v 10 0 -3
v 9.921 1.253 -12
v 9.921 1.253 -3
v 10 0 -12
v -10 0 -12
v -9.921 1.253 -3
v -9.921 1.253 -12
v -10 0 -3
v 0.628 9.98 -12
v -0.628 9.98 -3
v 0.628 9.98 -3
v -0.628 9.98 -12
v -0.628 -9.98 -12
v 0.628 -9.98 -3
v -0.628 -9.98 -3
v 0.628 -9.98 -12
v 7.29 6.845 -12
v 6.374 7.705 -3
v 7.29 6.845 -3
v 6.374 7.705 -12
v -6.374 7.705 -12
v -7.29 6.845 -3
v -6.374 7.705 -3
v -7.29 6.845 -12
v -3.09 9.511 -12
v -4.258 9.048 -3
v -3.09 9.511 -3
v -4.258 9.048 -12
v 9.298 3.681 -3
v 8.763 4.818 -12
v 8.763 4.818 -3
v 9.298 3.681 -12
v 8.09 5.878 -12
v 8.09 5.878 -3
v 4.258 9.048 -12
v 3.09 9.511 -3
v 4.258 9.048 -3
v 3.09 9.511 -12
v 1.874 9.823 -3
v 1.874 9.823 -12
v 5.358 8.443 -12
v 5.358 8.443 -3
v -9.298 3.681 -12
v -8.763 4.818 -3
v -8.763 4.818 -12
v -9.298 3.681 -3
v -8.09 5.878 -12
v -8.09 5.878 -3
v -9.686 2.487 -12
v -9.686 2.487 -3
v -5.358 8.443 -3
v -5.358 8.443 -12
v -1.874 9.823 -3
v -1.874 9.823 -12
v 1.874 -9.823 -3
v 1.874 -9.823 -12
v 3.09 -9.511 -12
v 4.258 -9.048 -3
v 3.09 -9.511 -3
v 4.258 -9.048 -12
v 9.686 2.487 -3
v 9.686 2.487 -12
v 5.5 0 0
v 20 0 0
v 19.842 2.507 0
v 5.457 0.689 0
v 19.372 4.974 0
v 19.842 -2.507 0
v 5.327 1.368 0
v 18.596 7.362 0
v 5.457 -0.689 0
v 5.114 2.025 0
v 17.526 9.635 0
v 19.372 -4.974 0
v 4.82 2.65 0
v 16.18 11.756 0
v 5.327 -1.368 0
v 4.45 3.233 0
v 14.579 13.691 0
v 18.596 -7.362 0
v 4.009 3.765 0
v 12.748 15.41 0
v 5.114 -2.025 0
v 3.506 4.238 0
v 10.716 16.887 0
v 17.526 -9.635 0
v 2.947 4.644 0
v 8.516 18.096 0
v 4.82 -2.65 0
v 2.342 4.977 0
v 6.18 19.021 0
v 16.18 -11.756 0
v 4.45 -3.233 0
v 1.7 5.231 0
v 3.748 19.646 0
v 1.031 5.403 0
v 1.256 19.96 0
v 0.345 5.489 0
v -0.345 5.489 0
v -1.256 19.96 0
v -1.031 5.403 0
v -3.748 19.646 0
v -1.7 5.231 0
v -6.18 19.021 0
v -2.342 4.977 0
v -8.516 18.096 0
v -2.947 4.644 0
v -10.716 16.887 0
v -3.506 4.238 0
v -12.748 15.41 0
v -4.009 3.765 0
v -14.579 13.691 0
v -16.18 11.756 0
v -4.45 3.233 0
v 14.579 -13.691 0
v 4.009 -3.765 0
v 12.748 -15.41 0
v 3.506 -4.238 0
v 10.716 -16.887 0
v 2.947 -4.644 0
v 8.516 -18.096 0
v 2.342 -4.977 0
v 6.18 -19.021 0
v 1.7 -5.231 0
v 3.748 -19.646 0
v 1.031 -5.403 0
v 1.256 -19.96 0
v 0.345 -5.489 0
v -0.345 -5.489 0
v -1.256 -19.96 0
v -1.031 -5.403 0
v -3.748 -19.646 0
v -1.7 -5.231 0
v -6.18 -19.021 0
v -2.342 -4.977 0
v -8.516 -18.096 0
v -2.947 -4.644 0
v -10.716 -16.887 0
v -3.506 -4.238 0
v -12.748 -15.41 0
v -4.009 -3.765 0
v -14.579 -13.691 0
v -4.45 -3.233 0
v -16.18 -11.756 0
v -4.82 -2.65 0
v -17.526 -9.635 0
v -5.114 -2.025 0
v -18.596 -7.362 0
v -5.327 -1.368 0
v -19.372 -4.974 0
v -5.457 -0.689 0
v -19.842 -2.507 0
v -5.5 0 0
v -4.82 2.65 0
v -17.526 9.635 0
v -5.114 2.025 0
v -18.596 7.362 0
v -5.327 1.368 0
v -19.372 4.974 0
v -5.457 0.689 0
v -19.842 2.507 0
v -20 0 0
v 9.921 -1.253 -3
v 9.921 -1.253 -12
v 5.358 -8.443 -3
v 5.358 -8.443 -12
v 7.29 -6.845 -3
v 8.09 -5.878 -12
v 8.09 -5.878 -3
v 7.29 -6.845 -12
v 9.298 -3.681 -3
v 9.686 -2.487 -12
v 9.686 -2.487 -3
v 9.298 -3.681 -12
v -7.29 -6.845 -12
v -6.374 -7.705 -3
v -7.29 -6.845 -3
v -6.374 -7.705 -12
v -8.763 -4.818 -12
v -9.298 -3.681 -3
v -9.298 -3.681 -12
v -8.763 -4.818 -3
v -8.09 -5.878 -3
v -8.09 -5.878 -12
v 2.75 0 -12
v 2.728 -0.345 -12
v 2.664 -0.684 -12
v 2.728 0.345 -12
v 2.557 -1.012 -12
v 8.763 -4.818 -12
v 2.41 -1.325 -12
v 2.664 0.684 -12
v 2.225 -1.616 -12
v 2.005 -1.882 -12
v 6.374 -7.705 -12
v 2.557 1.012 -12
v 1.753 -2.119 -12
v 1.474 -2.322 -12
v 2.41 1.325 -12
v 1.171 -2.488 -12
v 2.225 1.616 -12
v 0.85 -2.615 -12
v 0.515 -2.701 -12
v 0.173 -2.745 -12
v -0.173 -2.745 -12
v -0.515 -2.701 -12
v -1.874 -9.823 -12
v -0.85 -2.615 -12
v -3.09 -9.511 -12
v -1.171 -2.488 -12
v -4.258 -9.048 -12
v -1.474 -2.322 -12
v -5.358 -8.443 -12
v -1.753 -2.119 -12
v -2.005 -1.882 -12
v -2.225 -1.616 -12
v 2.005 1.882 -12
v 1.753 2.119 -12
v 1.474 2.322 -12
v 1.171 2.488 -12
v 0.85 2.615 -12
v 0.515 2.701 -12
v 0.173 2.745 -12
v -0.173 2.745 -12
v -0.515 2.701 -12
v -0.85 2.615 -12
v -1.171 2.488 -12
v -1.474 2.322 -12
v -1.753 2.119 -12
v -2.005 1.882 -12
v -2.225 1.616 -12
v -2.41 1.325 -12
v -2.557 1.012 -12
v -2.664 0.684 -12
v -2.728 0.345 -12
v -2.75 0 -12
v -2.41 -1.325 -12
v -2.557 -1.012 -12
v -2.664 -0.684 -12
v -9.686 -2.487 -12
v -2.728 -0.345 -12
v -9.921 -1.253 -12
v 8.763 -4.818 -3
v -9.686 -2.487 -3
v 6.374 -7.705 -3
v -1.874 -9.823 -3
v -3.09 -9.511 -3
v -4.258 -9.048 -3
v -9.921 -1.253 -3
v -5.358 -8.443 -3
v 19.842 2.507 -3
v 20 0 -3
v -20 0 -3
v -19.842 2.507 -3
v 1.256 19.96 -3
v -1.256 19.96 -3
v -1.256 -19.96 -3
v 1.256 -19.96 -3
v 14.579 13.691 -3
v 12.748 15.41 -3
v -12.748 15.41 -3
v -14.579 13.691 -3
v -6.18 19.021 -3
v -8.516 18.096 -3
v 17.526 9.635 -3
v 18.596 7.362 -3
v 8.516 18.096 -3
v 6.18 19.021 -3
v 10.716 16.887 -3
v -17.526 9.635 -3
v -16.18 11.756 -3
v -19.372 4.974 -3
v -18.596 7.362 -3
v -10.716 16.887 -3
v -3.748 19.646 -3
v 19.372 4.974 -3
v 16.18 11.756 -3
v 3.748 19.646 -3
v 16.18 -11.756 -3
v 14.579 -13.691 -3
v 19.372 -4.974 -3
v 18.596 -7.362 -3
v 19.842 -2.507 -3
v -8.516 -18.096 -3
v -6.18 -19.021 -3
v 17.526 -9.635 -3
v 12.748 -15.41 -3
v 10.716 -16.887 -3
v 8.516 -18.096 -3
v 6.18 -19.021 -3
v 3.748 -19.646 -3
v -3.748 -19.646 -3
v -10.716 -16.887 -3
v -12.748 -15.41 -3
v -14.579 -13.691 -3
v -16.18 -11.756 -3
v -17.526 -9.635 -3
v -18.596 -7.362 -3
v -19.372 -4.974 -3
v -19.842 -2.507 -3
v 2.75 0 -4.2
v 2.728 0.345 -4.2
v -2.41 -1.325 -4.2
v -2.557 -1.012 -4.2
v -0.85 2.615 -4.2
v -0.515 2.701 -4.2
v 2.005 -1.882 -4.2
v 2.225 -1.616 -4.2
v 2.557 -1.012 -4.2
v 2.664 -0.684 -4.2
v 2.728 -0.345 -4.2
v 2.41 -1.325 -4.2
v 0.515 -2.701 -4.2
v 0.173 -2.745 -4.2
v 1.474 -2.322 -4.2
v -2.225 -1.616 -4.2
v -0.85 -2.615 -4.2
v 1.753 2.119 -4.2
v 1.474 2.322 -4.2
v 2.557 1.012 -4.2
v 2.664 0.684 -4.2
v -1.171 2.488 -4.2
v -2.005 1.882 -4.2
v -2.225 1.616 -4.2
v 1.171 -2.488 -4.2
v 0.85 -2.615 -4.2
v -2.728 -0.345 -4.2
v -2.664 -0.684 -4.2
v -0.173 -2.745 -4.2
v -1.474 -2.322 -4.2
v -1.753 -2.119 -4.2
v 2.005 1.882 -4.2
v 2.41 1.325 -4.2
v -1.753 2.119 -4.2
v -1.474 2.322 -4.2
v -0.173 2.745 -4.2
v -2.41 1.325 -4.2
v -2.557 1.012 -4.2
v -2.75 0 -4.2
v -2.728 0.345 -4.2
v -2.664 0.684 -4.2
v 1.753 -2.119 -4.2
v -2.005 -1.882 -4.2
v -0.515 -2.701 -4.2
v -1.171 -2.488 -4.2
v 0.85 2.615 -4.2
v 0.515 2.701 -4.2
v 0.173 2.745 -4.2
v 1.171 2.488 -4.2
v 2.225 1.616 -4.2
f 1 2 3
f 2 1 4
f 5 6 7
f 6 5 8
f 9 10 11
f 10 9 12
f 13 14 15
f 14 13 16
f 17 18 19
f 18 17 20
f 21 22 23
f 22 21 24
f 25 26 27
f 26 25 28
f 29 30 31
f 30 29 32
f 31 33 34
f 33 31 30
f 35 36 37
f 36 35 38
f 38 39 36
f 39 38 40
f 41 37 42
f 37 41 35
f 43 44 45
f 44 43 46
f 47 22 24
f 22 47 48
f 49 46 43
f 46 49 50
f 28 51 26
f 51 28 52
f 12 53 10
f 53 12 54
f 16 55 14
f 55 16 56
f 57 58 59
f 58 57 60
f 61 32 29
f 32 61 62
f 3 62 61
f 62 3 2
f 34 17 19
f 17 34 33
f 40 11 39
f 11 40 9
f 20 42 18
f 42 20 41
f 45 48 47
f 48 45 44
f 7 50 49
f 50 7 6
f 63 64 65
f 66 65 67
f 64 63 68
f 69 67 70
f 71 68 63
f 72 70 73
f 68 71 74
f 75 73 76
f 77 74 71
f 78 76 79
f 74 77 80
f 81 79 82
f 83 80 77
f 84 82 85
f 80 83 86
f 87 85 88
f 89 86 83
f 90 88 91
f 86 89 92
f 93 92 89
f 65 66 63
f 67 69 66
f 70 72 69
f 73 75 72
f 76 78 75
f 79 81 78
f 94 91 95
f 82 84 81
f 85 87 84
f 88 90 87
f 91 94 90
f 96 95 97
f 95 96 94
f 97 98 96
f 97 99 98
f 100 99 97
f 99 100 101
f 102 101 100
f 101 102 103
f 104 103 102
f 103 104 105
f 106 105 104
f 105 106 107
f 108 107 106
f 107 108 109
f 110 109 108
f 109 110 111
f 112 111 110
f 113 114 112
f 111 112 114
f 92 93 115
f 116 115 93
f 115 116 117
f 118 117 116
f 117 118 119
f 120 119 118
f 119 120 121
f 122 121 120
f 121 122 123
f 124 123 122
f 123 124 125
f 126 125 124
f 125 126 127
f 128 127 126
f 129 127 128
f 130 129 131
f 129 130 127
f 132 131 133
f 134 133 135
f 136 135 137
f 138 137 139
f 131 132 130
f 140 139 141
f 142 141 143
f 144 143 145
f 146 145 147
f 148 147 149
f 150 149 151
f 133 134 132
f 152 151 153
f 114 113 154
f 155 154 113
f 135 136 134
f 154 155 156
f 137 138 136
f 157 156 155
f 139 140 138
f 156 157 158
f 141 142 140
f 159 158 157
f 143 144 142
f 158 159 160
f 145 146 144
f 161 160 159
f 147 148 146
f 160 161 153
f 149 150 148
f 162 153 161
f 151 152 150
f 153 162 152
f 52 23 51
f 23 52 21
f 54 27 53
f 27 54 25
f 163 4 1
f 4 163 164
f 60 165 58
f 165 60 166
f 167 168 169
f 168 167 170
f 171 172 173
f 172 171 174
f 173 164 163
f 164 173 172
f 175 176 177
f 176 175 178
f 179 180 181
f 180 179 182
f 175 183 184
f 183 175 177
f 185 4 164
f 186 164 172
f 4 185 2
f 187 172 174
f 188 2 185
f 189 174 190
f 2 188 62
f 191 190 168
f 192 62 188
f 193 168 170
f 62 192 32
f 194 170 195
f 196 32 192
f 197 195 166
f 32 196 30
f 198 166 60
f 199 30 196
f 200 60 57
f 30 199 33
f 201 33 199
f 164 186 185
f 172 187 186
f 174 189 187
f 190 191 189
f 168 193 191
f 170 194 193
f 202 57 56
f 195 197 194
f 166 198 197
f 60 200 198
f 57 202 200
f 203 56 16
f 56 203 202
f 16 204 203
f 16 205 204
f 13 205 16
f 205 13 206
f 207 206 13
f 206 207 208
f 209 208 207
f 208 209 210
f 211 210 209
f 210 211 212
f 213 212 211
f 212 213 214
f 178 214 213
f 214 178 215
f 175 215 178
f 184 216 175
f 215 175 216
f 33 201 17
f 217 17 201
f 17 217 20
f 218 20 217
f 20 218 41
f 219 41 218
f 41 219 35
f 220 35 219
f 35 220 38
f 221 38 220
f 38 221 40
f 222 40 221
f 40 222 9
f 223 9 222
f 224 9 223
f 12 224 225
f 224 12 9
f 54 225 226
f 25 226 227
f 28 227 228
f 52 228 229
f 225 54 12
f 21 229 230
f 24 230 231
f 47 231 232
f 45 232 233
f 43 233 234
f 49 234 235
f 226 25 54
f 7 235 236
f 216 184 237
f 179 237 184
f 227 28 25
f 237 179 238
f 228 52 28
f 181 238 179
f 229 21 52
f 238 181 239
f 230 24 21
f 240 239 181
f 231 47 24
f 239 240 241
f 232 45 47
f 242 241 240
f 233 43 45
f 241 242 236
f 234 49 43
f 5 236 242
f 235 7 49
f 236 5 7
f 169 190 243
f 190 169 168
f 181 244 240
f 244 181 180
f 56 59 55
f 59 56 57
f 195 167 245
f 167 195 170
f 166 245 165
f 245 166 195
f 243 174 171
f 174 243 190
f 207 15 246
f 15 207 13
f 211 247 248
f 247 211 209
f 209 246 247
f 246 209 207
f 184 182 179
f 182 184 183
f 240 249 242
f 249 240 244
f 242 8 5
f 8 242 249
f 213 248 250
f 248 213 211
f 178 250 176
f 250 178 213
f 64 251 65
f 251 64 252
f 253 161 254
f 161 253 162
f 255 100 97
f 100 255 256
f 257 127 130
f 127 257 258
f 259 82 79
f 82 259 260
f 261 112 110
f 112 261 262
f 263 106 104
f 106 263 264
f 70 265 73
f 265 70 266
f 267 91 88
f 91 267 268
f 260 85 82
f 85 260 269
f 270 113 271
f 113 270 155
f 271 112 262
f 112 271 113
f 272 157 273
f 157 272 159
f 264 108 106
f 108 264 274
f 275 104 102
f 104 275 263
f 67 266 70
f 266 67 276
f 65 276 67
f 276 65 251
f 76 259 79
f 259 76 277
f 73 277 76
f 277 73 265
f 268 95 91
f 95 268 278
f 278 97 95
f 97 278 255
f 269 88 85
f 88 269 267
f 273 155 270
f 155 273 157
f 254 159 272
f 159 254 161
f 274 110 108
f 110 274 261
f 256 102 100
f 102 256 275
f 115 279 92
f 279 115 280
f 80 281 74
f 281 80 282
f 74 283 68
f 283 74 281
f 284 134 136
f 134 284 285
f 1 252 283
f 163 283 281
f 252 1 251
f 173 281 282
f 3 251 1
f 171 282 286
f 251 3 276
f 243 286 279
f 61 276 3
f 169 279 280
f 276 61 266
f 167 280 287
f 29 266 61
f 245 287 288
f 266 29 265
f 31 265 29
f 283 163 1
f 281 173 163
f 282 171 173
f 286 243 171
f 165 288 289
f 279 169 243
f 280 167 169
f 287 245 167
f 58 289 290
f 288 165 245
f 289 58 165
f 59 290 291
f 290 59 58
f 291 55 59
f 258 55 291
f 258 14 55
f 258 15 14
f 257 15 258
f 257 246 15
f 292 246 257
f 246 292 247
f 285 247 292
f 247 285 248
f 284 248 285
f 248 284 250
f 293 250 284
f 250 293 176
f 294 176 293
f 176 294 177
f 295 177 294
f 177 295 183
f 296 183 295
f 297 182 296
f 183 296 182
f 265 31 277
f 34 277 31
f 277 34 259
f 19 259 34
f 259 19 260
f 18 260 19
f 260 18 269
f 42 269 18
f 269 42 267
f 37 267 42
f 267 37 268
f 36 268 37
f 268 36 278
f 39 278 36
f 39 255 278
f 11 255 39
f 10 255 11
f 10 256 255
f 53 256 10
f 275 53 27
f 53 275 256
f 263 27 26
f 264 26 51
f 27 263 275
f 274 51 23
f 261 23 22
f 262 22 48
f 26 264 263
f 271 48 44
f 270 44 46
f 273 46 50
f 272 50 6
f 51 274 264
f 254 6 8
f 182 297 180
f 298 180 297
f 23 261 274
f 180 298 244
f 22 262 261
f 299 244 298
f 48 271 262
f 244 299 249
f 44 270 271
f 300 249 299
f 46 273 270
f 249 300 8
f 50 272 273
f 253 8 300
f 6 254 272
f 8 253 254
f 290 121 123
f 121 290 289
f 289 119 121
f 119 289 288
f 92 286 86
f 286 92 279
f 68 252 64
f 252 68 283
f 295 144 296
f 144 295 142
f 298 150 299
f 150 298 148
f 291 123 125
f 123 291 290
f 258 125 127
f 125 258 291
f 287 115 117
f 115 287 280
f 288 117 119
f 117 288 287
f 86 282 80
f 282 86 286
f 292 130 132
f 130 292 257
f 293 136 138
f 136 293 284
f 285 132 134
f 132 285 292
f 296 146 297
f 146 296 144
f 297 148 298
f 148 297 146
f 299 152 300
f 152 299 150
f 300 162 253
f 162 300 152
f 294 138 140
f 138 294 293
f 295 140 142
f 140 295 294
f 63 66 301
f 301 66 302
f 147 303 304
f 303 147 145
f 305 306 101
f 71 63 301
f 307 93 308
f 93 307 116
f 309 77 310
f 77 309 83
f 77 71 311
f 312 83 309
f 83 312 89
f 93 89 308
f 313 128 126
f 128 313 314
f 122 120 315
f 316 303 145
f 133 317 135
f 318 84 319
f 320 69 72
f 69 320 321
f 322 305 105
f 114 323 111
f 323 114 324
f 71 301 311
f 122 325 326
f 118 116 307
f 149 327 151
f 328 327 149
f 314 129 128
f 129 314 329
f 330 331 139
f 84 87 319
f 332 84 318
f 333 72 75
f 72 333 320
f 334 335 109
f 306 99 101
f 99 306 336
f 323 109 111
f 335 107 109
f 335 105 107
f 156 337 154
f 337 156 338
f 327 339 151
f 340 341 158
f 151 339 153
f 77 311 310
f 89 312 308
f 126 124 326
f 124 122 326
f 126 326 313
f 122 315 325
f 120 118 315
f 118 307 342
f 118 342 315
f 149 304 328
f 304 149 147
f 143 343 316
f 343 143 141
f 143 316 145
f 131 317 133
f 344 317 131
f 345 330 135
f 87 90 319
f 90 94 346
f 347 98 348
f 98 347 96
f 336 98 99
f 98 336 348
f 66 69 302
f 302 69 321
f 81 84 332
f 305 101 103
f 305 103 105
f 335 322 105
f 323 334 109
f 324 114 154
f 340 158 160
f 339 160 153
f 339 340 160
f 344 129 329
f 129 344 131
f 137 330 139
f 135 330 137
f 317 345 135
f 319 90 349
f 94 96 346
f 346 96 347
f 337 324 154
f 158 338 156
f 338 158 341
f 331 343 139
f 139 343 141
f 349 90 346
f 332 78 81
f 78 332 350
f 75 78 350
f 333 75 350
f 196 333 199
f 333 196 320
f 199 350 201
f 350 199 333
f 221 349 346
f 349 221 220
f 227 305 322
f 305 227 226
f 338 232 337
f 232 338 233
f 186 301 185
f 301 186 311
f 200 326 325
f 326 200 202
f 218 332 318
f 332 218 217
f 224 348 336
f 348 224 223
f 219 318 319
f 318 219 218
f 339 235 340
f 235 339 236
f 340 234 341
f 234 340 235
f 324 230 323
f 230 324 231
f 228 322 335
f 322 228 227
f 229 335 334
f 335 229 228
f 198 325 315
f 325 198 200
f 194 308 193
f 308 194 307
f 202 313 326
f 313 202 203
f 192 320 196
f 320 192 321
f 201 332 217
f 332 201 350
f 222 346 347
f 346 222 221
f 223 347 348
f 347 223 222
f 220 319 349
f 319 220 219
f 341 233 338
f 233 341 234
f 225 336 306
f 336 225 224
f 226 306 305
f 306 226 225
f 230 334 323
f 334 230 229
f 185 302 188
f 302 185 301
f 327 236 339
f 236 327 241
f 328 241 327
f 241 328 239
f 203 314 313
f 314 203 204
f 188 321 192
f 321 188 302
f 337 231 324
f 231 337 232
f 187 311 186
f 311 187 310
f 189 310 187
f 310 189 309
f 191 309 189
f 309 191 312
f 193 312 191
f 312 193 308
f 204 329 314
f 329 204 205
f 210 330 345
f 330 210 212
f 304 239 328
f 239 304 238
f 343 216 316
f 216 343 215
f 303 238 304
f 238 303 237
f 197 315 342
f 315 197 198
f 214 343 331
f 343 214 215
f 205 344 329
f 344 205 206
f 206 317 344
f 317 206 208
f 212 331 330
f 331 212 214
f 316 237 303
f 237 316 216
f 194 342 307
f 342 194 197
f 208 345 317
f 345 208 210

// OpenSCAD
$fn = 50;


difference() {
	union() {
		translate(v = [0, 0, -12.0000000000]) {
			cylinder(h = 12, r = 10.0000000000);
		}
		translate(v = [0, 0, -3.0000000000]) {
			cylinder(h = 3, r = 20.0000000000);
		}
	}
	union() {
		translate(v = [0, 0, 0]) {
			rotate(a = [0, 0, 0]) {
				difference() {
					union() {
						#translate(v = [0, 0, -12.0000000000]) {
							cylinder(h = 12, r = 2.2500000000);
						}
						#translate(v = [0, 0, -4.2000000000]) {
							cylinder(h = 4.2000000000, r = 10.0000000000, r1 = 2.7500000000, r2 = 5.5000000000);
						}
						#translate(v = [0, 0, -12.0000000000]) {
							cylinder(h = 12, r = 2.7500000000);
						}
						#translate(v = [0, 0, -12.0000000000]) {
							cylinder(h = 12, r = 2.2500000000);
						}
					}
					union();
				}
			}
		}
	}
}
